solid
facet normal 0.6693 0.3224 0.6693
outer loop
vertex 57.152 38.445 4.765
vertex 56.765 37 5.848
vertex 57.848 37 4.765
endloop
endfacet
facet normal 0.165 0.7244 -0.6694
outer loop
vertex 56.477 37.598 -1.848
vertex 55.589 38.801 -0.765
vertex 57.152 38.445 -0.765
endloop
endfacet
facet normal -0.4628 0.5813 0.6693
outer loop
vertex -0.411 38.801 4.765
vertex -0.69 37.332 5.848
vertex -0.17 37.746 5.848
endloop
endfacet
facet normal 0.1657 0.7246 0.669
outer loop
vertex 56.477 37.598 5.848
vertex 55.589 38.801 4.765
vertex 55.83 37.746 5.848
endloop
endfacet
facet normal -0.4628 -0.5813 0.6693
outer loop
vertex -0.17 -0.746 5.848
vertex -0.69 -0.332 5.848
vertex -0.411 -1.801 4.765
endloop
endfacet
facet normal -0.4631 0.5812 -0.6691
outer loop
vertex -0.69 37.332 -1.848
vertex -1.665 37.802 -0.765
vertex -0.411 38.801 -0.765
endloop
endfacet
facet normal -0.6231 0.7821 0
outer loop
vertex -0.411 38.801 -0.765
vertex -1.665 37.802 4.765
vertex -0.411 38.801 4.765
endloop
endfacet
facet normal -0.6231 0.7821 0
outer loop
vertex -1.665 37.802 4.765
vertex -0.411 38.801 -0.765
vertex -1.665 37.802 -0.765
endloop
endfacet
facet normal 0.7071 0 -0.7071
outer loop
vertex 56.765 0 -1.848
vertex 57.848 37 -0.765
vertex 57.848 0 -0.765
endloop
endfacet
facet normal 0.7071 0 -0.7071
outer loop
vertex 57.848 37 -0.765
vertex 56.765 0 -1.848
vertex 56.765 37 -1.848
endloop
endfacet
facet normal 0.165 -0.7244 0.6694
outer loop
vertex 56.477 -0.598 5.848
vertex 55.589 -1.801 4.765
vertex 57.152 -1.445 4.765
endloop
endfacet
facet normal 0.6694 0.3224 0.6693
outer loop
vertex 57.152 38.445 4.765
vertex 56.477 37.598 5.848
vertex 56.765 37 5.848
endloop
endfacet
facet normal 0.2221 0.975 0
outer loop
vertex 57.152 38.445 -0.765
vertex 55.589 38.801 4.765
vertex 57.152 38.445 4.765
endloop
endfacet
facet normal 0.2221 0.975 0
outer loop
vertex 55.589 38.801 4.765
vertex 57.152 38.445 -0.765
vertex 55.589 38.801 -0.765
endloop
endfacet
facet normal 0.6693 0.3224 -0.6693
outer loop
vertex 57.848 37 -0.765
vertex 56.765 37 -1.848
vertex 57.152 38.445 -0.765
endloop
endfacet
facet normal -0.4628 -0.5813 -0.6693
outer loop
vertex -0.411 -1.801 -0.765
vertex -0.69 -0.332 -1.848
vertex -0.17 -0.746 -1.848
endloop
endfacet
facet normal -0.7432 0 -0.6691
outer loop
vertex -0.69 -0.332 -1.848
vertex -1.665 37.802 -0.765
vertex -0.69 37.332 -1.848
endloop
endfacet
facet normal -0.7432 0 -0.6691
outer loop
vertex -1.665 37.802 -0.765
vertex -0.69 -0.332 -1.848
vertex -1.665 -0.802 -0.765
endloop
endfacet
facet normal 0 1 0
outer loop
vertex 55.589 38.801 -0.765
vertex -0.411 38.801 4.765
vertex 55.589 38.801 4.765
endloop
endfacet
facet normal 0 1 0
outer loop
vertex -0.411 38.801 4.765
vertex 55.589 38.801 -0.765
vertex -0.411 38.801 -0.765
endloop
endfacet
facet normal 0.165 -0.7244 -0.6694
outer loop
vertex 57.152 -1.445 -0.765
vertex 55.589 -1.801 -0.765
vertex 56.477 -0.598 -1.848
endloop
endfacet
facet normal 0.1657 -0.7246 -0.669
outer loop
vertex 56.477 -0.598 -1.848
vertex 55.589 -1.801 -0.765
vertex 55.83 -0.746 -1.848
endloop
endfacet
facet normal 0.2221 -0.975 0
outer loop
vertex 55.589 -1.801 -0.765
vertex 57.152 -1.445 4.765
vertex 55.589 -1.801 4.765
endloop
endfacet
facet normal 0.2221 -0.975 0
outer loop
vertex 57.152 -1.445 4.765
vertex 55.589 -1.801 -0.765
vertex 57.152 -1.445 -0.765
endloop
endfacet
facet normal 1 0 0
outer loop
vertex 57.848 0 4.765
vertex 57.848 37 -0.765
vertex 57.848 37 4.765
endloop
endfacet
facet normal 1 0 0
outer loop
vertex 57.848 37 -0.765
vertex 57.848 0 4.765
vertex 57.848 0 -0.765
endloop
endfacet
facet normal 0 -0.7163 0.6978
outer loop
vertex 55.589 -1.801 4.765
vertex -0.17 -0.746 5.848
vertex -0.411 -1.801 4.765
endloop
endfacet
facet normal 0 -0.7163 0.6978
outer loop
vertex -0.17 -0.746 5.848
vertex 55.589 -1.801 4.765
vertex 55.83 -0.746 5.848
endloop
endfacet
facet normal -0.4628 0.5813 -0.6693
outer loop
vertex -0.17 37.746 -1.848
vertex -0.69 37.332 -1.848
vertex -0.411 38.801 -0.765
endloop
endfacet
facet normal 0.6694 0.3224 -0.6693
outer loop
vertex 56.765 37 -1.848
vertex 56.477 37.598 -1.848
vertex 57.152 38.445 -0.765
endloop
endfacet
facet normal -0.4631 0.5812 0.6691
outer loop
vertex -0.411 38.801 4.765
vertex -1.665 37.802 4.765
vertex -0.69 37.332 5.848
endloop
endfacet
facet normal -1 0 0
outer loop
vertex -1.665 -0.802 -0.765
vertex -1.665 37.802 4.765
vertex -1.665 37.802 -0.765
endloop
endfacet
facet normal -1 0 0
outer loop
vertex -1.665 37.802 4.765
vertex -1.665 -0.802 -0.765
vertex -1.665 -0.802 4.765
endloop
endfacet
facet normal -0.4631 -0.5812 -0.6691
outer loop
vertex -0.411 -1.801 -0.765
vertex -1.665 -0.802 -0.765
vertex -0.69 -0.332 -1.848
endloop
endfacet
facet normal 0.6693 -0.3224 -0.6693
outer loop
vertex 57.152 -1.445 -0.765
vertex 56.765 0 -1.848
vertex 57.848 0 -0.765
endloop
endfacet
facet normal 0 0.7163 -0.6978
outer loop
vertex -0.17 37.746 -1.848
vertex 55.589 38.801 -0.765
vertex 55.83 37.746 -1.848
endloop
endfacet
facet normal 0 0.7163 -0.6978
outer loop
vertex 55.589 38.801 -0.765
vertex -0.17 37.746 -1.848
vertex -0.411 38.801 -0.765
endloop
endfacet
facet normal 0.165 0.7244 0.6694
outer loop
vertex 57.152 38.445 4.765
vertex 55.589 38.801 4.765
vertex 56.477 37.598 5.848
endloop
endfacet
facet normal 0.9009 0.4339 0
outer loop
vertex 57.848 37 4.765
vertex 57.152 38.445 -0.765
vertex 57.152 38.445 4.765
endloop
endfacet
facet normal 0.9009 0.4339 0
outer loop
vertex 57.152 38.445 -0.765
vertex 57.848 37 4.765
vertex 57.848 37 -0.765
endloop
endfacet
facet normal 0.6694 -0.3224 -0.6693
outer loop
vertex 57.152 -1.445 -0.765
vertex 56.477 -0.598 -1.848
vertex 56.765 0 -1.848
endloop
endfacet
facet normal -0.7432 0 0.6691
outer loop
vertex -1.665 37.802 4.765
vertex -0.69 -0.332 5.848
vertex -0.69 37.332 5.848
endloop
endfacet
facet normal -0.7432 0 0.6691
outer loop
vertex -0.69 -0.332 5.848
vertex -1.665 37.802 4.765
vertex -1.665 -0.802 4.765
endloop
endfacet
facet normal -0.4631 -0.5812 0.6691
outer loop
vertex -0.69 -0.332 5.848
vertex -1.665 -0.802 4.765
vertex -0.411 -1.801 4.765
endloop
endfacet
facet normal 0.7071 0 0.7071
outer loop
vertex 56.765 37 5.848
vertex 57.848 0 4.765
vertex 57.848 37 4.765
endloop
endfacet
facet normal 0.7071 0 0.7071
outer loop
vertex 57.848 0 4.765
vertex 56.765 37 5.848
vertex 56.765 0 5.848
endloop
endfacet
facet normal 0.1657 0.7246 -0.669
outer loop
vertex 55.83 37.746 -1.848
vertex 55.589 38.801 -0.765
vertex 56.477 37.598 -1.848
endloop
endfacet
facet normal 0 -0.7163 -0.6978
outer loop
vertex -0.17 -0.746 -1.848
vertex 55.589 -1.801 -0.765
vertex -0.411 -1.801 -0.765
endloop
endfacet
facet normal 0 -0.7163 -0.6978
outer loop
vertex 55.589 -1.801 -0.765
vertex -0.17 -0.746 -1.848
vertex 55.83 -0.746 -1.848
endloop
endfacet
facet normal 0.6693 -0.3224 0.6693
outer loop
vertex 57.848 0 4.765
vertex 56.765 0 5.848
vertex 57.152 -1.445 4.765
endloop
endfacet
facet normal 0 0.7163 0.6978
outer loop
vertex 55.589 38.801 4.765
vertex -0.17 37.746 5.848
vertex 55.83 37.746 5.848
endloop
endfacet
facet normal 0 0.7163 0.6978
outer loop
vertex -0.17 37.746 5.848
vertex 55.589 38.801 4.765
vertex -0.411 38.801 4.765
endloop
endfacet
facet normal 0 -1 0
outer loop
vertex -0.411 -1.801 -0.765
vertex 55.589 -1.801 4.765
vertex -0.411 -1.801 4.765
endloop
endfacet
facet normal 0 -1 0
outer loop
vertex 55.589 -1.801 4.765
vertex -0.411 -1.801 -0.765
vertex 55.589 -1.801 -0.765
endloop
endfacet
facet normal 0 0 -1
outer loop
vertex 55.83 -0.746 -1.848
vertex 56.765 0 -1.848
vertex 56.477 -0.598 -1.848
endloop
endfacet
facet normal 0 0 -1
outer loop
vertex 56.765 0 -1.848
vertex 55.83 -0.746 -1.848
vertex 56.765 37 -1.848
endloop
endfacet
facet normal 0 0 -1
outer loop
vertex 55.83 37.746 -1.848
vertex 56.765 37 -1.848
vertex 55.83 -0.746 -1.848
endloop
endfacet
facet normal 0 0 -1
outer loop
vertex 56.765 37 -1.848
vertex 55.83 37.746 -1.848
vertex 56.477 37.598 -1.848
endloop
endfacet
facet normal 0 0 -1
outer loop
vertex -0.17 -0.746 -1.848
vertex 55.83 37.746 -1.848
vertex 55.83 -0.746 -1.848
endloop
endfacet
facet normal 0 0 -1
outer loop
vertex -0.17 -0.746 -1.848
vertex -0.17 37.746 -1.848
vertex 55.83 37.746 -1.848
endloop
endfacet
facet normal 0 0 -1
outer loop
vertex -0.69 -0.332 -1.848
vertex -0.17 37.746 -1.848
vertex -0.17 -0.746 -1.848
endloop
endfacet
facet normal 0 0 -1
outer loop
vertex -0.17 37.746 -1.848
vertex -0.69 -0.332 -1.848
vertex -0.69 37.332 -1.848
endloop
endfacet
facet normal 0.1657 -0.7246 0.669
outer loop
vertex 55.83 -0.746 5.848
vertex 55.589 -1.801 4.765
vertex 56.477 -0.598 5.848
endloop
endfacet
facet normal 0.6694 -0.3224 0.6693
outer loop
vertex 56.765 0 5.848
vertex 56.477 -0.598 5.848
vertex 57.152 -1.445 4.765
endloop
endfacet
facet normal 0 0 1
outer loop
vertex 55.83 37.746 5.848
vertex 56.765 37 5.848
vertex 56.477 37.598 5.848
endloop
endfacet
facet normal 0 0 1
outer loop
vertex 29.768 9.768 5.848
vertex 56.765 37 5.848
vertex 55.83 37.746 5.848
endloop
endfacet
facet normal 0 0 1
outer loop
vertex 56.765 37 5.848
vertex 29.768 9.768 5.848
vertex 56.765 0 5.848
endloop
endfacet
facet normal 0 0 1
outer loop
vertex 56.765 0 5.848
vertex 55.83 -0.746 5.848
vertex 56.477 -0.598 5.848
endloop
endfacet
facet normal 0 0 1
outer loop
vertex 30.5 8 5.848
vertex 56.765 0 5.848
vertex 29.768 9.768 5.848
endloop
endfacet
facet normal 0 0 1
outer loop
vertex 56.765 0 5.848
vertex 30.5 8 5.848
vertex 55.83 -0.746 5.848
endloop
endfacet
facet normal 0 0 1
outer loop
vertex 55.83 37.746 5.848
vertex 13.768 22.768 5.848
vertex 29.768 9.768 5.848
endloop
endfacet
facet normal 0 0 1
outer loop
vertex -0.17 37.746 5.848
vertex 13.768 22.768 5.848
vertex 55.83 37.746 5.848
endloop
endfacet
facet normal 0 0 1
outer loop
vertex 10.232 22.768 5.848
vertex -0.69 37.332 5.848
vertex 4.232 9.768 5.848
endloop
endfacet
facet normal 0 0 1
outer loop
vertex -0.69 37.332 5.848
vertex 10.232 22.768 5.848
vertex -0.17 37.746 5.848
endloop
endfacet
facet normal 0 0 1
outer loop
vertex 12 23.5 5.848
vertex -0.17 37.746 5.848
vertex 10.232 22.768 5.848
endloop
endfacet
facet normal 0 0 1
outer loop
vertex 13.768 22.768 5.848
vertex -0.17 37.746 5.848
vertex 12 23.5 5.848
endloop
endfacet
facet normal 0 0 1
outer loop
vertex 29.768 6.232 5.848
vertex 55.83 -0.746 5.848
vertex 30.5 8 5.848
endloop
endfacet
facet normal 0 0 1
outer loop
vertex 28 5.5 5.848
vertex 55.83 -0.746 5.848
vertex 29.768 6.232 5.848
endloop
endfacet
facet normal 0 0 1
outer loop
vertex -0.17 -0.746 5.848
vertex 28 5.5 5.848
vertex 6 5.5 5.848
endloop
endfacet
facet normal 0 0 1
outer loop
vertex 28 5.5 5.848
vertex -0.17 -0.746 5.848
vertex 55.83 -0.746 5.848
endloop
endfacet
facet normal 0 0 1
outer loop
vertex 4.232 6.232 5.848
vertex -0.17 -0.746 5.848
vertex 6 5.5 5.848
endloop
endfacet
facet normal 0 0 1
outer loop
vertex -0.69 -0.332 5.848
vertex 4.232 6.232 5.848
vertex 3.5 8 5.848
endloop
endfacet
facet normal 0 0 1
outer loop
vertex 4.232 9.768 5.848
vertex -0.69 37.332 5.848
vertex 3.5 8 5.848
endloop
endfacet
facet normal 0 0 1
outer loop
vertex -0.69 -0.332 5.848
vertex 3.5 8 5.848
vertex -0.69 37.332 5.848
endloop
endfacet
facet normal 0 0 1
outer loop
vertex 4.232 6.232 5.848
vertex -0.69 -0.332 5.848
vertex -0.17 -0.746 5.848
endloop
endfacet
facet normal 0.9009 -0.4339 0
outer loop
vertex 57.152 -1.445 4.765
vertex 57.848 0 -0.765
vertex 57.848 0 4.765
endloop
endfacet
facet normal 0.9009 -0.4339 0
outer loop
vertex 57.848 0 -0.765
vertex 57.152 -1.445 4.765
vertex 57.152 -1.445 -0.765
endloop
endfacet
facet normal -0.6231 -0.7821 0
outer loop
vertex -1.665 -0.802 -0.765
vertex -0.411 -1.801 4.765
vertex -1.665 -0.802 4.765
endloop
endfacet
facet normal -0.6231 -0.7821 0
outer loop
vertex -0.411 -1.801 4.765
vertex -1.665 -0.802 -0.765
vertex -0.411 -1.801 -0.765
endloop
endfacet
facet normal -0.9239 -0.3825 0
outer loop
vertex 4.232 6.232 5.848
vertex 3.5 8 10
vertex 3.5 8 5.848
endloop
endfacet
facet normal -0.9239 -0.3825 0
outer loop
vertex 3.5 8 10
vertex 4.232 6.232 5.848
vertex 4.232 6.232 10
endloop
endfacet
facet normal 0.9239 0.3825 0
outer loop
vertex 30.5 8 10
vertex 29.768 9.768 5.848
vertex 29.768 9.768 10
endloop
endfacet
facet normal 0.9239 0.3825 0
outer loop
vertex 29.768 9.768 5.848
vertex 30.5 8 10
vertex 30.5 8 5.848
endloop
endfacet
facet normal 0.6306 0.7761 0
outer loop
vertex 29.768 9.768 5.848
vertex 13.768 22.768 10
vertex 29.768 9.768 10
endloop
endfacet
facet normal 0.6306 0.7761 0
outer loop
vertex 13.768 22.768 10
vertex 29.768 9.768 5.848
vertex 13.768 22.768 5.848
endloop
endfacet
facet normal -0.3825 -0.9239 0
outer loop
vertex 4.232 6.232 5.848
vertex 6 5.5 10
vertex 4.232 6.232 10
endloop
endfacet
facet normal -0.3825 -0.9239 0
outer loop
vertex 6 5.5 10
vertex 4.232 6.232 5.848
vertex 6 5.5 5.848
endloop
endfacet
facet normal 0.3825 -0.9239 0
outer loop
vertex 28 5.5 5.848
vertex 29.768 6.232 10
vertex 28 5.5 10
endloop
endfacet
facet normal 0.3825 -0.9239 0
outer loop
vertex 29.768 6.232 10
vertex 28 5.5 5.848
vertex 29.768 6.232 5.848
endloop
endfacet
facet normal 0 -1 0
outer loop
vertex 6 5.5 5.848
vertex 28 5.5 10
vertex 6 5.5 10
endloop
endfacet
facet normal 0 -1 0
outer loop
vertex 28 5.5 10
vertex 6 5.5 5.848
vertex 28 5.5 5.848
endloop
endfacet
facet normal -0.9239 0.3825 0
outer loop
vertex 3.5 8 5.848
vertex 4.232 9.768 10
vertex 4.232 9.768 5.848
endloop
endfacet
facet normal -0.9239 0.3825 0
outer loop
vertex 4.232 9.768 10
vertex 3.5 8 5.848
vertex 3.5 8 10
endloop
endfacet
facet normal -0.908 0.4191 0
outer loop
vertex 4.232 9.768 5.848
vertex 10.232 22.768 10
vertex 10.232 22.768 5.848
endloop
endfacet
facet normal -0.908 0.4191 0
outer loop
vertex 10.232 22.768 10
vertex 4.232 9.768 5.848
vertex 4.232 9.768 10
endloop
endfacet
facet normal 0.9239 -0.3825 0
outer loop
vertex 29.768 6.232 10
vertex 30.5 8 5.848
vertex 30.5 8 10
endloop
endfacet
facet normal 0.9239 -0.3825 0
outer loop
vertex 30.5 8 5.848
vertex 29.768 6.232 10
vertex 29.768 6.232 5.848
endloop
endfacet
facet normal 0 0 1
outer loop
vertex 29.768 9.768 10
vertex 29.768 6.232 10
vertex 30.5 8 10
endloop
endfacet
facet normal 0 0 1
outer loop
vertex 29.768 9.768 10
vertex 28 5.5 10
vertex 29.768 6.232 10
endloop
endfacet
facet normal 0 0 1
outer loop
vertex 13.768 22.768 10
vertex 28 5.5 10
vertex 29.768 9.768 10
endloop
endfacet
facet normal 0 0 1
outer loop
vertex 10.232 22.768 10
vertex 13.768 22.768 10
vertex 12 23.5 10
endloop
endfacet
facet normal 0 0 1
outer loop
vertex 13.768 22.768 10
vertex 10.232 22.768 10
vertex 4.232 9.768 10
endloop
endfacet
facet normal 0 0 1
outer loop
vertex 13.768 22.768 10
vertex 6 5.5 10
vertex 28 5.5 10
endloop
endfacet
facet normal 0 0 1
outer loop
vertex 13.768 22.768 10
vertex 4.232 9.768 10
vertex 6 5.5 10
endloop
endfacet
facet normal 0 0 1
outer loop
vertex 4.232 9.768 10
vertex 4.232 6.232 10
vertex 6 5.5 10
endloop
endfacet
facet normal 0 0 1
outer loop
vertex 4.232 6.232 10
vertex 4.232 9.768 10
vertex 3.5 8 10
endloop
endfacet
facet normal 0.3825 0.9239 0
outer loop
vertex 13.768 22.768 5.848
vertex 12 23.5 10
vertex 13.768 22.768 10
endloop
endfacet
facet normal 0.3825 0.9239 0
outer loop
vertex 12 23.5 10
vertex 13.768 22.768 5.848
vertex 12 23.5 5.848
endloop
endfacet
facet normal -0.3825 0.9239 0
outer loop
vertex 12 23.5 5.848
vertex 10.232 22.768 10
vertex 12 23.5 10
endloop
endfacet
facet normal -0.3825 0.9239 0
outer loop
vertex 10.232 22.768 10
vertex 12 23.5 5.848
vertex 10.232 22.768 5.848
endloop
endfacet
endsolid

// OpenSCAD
minkowski_factor = 2;
depth = 8 - minkowski_factor * 2;
camera_depth = 6;

minkowski() {
	sphere(minkowski_factor);
	cube([58 - minkowski_factor, 39 - minkowski_factor, depth]);
}
hull() {
	translate([28, 8, depth]) cylinder(d = 5, h = camera_depth);
	translate([12, 21, depth]) cylinder(d = 5, h = camera_depth);
	translate([6, 8, depth]) cylinder(d = 5, h = camera_depth);
}
